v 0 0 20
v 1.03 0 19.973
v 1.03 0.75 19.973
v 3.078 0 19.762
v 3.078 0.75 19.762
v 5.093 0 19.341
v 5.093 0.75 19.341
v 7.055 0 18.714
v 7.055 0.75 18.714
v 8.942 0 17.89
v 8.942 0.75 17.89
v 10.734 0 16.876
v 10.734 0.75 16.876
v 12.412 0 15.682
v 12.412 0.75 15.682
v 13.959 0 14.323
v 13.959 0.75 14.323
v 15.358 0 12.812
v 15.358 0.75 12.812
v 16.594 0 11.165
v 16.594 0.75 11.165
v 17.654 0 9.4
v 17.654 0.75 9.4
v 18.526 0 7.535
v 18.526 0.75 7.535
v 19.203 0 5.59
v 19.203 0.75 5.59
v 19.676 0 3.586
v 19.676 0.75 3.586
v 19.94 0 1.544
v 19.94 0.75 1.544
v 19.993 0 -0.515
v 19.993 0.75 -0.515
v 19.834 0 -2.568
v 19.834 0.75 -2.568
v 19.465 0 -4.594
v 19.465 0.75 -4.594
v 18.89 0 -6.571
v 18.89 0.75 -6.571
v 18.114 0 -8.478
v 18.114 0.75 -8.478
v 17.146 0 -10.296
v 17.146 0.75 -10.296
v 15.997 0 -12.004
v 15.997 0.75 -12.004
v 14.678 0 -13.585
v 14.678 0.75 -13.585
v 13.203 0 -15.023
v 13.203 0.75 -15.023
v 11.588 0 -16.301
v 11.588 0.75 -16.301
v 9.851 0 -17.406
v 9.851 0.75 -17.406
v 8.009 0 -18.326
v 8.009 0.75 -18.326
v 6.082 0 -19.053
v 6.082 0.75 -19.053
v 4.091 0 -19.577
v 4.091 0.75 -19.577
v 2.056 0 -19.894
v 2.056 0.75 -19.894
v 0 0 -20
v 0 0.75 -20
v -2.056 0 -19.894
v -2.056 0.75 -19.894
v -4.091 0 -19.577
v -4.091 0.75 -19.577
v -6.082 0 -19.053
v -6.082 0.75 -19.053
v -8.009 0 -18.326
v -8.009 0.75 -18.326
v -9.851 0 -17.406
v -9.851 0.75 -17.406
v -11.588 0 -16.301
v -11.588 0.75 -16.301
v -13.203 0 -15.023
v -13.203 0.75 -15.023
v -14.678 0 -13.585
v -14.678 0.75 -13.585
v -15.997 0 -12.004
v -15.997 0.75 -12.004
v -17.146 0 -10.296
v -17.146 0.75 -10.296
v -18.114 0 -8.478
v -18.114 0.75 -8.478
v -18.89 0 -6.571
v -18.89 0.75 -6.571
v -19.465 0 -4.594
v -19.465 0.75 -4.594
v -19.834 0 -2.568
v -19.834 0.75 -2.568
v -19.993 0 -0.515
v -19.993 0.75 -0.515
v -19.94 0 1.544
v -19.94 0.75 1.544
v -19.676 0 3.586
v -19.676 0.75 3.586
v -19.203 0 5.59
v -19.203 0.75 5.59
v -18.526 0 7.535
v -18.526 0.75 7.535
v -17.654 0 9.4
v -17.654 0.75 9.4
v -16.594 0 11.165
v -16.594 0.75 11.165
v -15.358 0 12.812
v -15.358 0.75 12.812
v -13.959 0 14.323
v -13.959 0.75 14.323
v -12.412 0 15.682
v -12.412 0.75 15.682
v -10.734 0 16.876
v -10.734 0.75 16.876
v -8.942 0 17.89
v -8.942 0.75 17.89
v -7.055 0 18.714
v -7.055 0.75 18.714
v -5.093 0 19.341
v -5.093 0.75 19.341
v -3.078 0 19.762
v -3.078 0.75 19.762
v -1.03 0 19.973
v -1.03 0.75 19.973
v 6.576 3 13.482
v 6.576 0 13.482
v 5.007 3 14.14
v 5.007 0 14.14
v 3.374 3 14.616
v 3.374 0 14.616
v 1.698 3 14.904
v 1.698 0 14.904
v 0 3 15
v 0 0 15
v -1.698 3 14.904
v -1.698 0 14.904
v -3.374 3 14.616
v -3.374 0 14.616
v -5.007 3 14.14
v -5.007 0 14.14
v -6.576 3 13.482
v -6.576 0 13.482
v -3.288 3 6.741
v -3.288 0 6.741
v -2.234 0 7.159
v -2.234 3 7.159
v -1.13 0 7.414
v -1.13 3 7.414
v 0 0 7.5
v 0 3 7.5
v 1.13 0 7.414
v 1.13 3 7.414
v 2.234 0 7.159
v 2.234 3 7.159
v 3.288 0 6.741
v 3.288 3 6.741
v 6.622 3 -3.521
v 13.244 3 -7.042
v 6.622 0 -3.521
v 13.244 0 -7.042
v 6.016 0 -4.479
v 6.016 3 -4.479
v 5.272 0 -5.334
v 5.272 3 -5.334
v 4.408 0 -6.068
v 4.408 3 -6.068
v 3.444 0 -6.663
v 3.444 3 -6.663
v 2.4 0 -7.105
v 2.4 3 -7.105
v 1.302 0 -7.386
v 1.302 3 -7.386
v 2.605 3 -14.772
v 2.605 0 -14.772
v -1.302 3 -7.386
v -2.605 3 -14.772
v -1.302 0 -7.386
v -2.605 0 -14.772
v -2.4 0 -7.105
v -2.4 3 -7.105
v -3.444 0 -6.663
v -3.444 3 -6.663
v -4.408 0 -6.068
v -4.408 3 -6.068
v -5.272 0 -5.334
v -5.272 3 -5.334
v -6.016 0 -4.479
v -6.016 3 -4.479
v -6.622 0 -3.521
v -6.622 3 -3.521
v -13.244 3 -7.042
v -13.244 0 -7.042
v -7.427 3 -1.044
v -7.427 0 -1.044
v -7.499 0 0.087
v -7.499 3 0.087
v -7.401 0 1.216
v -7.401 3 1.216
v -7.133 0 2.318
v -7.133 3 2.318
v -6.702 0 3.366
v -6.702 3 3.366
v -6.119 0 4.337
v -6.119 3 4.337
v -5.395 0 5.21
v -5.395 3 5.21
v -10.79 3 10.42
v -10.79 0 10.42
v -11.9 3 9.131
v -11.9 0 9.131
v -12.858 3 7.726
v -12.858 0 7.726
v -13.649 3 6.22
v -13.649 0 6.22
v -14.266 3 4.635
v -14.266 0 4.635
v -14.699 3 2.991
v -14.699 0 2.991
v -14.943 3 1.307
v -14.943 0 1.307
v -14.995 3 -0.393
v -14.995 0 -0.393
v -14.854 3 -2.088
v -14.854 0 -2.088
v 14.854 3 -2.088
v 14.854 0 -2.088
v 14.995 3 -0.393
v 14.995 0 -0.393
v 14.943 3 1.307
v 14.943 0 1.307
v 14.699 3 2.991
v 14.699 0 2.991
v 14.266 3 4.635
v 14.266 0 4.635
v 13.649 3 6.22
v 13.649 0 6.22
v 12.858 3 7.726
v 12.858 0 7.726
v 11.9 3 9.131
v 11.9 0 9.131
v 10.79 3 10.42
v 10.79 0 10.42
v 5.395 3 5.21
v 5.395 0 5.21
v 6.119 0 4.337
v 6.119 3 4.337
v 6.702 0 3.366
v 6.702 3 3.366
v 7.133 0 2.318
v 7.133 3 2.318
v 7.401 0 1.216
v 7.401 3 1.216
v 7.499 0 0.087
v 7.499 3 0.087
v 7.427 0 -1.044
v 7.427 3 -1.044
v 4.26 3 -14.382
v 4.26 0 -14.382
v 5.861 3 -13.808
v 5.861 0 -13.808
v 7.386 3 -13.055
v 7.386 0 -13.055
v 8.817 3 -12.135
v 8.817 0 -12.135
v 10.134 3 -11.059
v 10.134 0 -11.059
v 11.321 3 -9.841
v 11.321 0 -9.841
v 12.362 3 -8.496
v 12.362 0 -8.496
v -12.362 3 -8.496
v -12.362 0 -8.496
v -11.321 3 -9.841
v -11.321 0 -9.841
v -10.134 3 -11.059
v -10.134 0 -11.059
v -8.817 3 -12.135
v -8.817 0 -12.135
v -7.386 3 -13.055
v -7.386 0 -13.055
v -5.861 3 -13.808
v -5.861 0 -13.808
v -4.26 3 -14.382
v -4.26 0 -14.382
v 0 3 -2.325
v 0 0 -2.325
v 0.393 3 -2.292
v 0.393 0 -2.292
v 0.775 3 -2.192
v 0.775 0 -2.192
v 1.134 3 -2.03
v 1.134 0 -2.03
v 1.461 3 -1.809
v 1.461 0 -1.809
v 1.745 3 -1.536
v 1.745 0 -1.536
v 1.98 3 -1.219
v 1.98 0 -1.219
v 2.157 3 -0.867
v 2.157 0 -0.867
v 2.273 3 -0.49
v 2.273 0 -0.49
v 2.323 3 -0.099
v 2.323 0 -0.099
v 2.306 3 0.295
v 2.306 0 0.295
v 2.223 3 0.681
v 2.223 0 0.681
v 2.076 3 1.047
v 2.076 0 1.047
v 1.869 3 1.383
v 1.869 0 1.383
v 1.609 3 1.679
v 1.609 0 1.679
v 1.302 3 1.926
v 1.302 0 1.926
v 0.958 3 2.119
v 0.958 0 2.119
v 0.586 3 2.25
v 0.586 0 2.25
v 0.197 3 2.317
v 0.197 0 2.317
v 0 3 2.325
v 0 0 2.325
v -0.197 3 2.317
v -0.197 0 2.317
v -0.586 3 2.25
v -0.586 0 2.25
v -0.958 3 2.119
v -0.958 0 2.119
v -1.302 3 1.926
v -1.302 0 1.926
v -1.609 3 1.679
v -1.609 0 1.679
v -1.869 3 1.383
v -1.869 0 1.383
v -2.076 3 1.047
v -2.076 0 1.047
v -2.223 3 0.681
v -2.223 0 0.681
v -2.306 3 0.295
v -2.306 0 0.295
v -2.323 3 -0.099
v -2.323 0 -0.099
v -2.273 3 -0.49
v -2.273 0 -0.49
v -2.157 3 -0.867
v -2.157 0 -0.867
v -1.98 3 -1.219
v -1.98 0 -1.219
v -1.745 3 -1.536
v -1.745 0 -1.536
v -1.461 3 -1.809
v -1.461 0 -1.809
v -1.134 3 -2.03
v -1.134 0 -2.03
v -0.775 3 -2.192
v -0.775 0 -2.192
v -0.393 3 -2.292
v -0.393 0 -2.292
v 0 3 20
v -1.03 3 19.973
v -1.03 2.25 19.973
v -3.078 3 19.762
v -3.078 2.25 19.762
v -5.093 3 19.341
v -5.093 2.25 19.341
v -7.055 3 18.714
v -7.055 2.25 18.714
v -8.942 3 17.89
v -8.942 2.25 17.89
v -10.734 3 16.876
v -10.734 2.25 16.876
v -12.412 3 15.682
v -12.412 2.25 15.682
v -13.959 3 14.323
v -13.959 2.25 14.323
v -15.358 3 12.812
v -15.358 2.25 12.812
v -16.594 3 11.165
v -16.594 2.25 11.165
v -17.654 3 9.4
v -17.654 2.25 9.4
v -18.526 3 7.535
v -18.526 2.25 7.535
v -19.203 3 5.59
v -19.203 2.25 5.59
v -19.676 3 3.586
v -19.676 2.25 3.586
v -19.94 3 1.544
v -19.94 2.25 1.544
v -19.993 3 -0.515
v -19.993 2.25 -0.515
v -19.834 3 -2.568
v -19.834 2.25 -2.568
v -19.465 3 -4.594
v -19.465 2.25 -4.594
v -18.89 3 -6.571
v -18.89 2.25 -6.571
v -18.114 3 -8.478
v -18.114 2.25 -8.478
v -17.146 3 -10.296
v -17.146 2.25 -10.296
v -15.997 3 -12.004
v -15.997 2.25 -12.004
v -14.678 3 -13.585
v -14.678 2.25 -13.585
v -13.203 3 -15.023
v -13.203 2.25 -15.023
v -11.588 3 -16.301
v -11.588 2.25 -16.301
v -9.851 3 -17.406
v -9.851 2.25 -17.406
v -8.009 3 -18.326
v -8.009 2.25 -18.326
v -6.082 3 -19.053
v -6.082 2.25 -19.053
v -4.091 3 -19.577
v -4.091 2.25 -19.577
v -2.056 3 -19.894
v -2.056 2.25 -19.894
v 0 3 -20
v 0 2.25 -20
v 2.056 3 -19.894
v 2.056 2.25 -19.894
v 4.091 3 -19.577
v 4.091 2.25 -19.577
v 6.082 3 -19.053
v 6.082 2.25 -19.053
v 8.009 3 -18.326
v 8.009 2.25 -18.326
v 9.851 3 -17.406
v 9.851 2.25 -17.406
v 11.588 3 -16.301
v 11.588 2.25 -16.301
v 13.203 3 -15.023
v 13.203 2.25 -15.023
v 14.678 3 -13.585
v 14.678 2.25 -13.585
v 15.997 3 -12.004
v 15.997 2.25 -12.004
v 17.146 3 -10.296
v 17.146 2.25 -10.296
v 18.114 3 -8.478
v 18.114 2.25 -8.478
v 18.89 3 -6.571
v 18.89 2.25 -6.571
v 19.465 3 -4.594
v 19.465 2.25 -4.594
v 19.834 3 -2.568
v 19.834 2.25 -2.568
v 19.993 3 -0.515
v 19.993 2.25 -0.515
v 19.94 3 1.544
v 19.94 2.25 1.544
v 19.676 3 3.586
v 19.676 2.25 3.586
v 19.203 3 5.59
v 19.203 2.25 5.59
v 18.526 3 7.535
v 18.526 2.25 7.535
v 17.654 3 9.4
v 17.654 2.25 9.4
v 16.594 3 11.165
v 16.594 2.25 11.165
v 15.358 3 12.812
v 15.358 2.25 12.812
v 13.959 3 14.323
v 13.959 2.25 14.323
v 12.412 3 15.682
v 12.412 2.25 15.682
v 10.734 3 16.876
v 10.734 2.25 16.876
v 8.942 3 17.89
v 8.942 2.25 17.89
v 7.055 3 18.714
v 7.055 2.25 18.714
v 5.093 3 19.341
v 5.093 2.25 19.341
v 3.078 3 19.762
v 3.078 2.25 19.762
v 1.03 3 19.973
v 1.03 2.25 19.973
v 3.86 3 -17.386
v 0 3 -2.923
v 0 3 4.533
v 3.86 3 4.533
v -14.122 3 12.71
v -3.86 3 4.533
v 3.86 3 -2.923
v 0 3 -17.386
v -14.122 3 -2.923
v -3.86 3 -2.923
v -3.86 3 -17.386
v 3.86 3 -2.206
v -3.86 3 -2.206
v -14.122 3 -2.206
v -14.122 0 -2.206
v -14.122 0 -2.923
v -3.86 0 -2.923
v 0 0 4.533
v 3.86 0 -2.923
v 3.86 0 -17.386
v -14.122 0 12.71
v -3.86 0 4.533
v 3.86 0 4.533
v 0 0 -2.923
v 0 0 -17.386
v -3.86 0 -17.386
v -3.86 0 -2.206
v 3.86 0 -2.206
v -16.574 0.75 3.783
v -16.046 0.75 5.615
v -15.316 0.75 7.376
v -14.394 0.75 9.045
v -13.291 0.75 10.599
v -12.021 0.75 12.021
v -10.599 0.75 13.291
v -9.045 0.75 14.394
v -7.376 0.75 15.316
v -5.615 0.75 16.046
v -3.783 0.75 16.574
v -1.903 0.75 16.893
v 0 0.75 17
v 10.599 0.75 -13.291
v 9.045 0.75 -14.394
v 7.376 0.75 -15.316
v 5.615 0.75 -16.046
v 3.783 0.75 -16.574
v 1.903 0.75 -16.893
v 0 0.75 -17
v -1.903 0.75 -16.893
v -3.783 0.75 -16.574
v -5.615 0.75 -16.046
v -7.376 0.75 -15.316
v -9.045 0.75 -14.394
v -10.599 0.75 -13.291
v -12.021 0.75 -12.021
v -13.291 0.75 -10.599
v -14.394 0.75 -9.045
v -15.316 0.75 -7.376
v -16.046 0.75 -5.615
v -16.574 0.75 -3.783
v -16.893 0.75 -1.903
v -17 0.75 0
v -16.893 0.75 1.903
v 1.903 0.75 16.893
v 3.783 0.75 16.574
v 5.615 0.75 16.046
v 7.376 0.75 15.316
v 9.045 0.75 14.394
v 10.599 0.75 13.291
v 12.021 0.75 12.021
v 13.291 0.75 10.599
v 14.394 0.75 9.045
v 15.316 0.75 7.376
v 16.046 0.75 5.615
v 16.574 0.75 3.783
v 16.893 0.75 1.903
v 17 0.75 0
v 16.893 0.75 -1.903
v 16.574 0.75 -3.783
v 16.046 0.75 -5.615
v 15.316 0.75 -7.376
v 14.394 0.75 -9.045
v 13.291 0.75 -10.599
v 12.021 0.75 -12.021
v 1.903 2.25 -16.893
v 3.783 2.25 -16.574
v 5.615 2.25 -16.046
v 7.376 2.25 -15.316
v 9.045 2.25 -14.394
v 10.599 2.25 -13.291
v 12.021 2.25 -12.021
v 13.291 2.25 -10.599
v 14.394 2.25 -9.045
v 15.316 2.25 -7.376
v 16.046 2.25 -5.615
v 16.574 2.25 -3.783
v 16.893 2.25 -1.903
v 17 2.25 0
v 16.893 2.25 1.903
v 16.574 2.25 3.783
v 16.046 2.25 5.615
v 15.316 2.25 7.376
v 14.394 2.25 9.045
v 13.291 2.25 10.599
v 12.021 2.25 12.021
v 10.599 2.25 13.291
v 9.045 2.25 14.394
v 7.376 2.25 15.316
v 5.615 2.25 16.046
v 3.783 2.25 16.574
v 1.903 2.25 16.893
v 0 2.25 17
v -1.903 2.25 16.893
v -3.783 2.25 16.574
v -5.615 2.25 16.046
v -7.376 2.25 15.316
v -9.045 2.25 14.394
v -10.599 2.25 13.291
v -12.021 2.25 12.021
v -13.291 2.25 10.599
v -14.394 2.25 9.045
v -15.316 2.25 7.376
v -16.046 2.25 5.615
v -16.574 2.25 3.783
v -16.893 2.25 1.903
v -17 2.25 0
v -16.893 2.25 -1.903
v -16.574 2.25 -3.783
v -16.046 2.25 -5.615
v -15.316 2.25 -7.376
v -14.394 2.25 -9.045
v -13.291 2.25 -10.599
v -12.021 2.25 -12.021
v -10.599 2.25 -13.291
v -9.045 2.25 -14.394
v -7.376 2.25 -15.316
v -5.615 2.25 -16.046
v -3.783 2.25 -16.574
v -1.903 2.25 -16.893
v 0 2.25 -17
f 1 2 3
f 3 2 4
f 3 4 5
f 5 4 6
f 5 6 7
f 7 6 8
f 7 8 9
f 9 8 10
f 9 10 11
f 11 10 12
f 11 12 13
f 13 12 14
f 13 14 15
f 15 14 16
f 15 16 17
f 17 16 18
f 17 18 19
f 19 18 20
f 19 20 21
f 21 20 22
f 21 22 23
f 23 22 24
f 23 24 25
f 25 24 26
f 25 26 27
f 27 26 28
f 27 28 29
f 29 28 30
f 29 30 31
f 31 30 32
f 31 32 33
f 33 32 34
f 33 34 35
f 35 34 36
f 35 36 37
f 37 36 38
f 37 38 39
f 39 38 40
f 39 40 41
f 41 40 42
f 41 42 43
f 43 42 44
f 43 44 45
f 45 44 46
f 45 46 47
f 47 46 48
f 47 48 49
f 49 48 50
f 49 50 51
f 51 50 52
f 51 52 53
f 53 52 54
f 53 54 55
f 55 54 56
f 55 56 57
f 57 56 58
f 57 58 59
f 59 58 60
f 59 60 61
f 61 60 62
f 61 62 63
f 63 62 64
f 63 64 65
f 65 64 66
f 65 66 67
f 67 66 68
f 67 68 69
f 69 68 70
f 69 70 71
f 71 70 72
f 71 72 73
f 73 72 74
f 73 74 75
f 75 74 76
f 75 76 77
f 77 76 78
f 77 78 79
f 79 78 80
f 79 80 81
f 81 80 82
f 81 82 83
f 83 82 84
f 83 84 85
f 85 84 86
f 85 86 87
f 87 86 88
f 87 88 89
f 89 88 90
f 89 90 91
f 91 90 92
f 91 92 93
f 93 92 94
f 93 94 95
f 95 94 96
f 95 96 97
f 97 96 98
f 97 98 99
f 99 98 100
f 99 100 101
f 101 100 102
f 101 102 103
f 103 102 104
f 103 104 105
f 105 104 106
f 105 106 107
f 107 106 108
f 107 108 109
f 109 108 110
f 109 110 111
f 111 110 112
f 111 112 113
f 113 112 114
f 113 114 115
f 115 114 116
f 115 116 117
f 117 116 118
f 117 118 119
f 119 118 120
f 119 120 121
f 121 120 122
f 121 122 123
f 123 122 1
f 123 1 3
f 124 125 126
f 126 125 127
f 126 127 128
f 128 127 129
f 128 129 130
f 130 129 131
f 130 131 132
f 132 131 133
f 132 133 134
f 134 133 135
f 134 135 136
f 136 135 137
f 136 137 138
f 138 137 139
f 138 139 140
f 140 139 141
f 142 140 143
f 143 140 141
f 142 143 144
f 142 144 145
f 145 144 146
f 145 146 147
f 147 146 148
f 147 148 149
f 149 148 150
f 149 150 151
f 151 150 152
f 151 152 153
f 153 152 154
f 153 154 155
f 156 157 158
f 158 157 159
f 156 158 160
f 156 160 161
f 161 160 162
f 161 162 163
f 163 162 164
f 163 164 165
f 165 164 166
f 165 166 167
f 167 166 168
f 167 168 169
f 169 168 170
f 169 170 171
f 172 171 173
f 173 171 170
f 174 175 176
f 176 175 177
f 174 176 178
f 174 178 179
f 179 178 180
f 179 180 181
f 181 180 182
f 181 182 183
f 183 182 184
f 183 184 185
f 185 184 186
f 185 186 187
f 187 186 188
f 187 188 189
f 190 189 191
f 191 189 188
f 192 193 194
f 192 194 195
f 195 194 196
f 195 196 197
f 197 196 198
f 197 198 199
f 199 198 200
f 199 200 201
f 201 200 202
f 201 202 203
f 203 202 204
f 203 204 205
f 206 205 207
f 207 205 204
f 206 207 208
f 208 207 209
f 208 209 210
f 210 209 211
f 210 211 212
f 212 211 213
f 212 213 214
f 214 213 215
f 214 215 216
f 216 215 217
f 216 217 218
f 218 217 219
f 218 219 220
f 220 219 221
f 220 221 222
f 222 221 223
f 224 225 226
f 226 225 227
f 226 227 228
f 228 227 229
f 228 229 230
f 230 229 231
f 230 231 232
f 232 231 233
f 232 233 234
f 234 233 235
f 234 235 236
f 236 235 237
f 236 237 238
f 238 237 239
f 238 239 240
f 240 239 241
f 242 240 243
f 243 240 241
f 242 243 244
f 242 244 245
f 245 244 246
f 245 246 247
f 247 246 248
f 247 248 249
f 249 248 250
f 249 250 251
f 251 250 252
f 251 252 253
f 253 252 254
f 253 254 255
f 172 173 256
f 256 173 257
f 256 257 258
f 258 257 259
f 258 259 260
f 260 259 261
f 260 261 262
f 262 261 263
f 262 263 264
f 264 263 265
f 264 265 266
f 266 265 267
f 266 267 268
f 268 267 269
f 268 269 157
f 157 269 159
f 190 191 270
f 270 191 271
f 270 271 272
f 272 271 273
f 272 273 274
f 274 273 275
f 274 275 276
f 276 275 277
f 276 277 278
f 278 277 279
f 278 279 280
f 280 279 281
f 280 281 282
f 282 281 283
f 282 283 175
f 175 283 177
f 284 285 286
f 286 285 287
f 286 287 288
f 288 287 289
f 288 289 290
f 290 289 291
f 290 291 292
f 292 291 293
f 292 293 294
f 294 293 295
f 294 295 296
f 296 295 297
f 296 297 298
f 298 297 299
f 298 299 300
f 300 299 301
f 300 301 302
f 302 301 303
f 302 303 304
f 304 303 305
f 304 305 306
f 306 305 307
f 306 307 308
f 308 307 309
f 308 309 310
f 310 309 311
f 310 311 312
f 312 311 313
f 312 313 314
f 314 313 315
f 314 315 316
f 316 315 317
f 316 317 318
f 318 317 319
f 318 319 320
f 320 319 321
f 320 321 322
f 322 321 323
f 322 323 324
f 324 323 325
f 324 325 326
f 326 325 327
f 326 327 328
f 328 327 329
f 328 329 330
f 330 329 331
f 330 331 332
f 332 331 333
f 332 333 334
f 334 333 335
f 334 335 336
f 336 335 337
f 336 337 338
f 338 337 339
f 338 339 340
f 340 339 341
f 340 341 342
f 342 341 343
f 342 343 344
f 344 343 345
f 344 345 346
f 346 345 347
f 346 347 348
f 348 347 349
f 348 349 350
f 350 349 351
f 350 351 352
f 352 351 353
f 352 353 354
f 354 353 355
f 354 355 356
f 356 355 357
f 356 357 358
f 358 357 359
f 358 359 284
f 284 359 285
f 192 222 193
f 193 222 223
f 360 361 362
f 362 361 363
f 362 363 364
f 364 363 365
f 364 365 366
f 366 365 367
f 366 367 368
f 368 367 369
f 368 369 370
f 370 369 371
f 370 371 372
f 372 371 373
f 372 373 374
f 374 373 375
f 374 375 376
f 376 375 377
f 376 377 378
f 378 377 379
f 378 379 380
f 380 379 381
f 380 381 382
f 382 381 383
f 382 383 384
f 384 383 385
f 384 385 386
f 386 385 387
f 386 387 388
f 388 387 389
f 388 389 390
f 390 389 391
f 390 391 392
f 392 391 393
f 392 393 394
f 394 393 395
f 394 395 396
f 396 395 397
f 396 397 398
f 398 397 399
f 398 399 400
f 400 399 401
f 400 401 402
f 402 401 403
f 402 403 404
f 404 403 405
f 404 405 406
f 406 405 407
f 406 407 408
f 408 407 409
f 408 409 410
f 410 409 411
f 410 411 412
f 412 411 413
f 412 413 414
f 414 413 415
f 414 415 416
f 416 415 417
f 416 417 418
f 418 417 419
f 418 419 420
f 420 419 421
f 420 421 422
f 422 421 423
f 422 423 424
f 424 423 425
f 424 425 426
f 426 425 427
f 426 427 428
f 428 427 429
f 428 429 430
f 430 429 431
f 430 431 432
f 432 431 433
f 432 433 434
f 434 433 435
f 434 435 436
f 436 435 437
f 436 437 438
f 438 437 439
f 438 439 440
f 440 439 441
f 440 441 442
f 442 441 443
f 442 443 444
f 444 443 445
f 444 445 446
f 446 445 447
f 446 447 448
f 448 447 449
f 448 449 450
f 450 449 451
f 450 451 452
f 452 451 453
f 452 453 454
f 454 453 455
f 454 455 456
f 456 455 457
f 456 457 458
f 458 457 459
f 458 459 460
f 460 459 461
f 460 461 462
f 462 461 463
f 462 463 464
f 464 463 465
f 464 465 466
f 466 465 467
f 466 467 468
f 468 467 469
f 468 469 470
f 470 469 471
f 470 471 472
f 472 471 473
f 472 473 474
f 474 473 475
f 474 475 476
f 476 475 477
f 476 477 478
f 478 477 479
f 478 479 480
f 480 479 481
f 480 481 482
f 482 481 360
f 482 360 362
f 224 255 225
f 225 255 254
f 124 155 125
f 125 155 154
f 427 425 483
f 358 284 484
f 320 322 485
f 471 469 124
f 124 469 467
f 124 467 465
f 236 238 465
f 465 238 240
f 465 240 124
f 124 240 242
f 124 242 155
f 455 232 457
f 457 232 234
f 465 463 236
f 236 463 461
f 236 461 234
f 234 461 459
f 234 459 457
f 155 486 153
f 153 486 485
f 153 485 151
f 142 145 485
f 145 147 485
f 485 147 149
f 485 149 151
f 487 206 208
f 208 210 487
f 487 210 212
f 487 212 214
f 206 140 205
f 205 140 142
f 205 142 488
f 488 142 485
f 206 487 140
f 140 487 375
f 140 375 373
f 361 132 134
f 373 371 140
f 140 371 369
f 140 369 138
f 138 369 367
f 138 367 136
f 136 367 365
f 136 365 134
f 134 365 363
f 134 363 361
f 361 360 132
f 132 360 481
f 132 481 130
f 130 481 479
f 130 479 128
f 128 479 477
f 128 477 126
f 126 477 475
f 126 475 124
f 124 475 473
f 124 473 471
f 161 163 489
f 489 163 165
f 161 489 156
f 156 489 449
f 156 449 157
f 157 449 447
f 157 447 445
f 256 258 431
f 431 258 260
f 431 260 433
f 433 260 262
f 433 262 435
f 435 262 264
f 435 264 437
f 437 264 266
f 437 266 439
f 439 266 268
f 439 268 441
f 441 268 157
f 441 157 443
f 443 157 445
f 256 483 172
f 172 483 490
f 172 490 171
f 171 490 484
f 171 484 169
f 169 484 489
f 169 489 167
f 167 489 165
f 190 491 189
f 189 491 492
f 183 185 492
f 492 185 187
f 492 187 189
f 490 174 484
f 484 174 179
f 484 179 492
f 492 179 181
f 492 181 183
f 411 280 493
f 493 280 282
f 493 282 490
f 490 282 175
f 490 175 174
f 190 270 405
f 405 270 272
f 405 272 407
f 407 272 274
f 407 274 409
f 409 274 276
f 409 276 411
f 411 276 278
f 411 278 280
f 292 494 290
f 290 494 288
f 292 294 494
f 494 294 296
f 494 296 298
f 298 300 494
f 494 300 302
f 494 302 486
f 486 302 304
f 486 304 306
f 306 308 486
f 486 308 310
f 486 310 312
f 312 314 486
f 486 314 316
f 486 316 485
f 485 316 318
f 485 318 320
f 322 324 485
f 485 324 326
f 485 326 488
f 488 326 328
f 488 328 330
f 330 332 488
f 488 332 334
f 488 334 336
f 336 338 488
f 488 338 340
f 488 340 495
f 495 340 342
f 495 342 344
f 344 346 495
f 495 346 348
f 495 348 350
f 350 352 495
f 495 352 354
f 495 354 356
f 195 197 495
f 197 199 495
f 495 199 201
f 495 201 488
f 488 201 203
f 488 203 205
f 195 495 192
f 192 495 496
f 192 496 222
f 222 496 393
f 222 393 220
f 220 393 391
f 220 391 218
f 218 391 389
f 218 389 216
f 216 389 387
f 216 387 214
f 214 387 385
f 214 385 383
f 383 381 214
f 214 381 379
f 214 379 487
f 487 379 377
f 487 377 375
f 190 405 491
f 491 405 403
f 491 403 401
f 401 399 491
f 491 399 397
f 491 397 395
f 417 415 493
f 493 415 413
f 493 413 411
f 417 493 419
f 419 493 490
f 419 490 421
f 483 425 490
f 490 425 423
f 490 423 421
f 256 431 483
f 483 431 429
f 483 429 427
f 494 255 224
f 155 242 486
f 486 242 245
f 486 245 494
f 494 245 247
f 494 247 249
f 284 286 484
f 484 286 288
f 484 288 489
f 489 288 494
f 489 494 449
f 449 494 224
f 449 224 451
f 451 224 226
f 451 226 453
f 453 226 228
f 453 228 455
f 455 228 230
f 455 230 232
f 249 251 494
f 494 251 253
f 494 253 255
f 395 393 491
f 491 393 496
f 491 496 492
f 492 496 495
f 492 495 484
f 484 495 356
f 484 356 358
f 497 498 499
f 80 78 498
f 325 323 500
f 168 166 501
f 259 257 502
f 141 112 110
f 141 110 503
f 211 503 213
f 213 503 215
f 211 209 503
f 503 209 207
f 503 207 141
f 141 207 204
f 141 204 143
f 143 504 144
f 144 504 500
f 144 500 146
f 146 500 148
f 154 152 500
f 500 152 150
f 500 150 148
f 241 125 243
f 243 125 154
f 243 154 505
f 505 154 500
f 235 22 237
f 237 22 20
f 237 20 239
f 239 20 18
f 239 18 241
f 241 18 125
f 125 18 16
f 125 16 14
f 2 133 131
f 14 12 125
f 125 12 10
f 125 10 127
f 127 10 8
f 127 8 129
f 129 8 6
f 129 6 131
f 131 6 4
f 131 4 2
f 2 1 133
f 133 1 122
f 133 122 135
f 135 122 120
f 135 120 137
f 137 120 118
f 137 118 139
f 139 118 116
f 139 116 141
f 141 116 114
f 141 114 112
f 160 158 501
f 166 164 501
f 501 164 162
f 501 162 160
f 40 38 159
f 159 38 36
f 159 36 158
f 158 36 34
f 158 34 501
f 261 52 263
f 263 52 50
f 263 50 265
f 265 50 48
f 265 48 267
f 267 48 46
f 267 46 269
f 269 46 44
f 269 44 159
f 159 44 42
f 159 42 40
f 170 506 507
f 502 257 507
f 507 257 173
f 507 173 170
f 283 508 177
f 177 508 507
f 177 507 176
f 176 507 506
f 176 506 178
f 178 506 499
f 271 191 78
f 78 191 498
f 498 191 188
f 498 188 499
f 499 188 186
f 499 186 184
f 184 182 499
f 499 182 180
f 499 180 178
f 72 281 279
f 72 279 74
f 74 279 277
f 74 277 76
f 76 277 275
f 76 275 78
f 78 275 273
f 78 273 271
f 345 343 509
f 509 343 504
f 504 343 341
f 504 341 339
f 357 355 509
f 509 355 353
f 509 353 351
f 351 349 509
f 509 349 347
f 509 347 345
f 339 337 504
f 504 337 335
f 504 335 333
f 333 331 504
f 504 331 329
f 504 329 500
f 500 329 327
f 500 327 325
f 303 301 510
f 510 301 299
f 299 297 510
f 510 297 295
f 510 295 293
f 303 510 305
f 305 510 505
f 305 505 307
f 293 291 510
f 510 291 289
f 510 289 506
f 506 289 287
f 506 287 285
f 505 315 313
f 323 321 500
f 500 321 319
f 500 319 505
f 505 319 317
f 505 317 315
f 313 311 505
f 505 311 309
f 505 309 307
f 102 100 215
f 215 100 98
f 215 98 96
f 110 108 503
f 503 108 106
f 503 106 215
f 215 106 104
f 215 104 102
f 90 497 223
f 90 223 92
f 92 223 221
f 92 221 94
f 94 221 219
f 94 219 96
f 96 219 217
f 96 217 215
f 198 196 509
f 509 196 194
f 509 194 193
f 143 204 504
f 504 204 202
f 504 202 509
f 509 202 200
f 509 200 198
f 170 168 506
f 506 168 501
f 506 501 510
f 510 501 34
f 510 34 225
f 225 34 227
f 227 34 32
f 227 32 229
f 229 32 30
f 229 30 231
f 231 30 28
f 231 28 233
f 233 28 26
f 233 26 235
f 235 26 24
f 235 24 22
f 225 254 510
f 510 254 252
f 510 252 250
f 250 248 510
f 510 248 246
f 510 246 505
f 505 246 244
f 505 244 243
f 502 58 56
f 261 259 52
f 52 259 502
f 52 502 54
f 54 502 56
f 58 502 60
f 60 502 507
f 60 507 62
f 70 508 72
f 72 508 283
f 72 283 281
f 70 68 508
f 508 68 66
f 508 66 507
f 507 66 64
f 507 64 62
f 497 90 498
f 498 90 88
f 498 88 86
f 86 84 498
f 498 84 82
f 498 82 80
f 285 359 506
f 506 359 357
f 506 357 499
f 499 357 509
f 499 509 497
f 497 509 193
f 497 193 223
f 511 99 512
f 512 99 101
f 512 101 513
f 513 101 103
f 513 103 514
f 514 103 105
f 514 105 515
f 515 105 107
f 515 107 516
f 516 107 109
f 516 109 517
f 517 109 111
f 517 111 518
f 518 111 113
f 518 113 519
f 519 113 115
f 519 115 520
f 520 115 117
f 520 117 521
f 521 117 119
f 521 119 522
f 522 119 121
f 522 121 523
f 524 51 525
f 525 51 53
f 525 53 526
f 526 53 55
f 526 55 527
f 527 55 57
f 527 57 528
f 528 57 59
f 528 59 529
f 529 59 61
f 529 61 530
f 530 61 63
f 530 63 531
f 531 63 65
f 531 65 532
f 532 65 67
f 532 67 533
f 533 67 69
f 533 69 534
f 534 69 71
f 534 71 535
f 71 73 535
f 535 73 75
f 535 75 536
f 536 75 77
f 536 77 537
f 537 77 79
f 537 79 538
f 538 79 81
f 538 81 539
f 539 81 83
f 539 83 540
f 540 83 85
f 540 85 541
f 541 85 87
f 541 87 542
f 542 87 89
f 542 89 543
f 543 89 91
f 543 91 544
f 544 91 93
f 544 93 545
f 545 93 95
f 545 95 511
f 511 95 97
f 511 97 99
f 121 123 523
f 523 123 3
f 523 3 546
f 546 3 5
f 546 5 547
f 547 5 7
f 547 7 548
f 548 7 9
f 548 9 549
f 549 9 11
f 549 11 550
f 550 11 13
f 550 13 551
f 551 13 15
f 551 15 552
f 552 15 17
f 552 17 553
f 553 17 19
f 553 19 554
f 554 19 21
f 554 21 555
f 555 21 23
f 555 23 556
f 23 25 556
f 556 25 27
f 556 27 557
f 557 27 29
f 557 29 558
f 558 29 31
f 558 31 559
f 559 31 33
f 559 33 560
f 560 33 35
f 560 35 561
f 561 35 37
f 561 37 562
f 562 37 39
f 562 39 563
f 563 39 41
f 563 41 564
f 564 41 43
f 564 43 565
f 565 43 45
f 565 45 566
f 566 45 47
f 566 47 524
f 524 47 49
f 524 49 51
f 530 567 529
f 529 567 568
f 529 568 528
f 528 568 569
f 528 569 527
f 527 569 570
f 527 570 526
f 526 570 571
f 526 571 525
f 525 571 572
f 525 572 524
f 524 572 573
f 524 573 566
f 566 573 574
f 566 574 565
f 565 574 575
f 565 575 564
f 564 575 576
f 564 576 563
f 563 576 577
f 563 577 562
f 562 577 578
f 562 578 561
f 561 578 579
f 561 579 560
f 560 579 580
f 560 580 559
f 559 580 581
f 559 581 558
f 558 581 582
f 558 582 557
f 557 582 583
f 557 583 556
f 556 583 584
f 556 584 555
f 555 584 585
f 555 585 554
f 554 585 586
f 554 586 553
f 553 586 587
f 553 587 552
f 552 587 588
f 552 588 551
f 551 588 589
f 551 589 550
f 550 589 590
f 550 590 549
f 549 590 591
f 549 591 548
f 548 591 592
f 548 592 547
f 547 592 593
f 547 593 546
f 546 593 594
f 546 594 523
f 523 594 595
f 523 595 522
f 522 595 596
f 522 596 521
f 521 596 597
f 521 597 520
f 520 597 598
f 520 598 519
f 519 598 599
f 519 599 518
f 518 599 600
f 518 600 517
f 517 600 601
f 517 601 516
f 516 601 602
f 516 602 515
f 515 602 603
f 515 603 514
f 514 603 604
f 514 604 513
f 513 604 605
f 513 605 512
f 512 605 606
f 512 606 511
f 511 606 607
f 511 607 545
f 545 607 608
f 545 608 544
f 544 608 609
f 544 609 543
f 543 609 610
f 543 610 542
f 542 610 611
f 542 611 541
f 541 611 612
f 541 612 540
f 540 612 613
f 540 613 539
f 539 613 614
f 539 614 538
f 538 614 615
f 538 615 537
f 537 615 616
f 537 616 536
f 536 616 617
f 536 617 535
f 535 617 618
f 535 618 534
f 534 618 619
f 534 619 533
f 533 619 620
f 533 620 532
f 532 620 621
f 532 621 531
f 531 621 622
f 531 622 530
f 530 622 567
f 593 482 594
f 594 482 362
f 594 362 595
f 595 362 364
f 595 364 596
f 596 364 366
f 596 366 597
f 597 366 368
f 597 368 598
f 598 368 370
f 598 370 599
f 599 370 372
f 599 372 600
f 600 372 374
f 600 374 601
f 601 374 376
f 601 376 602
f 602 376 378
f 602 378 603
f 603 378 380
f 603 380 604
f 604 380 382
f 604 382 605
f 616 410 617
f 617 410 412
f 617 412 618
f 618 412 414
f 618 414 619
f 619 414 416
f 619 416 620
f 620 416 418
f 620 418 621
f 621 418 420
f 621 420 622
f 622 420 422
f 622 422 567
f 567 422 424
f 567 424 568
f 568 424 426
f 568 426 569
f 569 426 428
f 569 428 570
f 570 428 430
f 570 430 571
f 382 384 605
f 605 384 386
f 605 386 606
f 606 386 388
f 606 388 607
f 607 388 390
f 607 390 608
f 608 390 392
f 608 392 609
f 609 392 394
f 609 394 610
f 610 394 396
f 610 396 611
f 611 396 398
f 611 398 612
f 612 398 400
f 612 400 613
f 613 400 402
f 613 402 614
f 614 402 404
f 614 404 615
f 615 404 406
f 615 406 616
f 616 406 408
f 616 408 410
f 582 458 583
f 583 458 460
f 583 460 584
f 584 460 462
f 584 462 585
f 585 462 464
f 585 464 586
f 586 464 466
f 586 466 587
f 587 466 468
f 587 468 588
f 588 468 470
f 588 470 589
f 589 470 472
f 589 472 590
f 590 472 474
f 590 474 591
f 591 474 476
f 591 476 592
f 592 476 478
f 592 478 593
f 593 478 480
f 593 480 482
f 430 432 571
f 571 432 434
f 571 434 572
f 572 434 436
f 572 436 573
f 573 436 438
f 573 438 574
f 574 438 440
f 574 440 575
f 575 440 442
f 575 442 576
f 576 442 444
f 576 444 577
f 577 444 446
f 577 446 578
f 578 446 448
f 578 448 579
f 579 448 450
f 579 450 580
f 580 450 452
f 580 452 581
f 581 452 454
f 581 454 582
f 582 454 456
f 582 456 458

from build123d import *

# Parameters (mm, degrees)
SKETCH2_R           = 20
SKETCH2_R_2         = 2.325
BOSS_EXTRUDE1_DEPTH = 3
SKETCH3_W           = 3
SKETCH3_H           = 1.5


with BuildPart() as part:
    # Sketch2 → Boss-Extrude1 (new body)
    with BuildSketch(Plane(origin=(0, 0, 0), x_dir=(1, 0, 0), z_dir=(0, 1, 0))):
        with Locations(Location((0, 0, 0), (0, 0, 270))):
            Circle(SKETCH2_R)
        with Locations(Location((0, 0, 0), (0, 0, 270))):
            Circle(SKETCH2_R_2, mode=Mode.SUBTRACT)
        with BuildLine():
            Line((-1.302361333, 7.386058148), (-2.604722665, 14.772116295))
            ThreePointArc((-2.604722665, 14.772116295), (-8.816778784, 12.135254916), (-13.244213893, 7.042073442))
            Line((-13.244213893, 7.042073442), (-6.622106946, 3.521036721))
            ThreePointArc((-6.622106946, 3.521036721), (-4.408389392, 6.067627458), (-1.302361333, 7.386058148))
        make_face(mode=Mode.SUBTRACT)
        with BuildLine():
            Line((1.302361333, 7.386058148), (2.604722665, 14.772116295))
            ThreePointArc((2.604722665, 14.772116295), (8.816778784, 12.135254916), (13.244213893, 7.042073442))
            Line((13.244213893, 7.042073442), (6.622106946, 3.521036721))
            ThreePointArc((6.622106946, 3.521036721), (4.408389392, 6.067627458), (1.302361333, 7.386058148))
        make_face(mode=Mode.SUBTRACT)
        with BuildLine():
            Line((7.427010516, 1.043798257), (14.854021031, 2.087596514))
            ThreePointArc((14.854021031, 2.087596514), (14.265847744, -4.635254916), (10.790097005, -10.419875557))
            Line((10.790097005, -10.419875557), (5.395048503, -5.209937778))
            ThreePointArc((5.395048503, -5.209937778), (7.132923872, -2.317627458), (7.427010516, 1.043798257))
        make_face(mode=Mode.SUBTRACT)
        with BuildLine():
            Line((3.287783601, -6.740955347), (6.575567202, -13.481910694))
            ThreePointArc((6.575567202, -13.481910694), (0, -15), (-6.575567202, -13.481910694))
            Line((-6.575567202, -13.481910694), (-3.287783601, -6.740955347))
            ThreePointArc((-3.287783601, -6.740955347), (0, -7.5), (3.287783601, -6.740955347))
        make_face(mode=Mode.SUBTRACT)
        with BuildLine():
            Line((-5.395048503, -5.209937778), (-10.790097005, -10.419875557))
            ThreePointArc((-10.790097005, -10.419875557), (-14.265847744, -4.635254916), (-14.854021031, 2.087596514))
            Line((-14.854021031, 2.087596514), (-7.427010516, 1.043798257))
            ThreePointArc((-7.427010516, 1.043798257), (-7.132923872, -2.317627458), (-5.395048503, -5.209937778))
        make_face(mode=Mode.SUBTRACT)
    extrude(amount=BOSS_EXTRUDE1_DEPTH)

    # Sketch3 → Cut-Revolve1 (revolve, cut)
    with BuildSketch(Plane.XY, mode=Mode.PRIVATE) as cut_revolve1_sk:
        with Locations((18.5, 1.5)):
            Rectangle(SKETCH3_W, SKETCH3_H)
    revolve(cut_revolve1_sk.sketch.rotate(Axis((0, 0, 0), (0, 1, 0)), 90), axis=Axis((0, 0, 0), (0, 1, 0)), mode=Mode.SUBTRACT)


solid = part.part
